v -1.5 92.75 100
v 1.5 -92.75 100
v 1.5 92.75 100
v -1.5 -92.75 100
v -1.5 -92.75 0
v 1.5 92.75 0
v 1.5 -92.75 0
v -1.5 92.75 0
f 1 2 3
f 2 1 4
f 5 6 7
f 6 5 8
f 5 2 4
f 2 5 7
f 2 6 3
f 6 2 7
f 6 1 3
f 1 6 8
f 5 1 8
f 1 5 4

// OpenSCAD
// file: Inlet.scad
$fn = 100;
tiny = 0.01;


/******************************************************
 * dx,dy: Maße, wie bei 'Boden' angegeben.
 *****************************************************/
module inlet_top_down(dx,dy) {
  h1 = 3;  
  dx1 = 5.9;
  dx2 = 4.0; // vier mal Fase an Ecken

  difference() {
     translate([0,0,h1/2]) cube([dx-2*dx1,dy-2*dx1,h1], true); 
     translate([+dx/2-dx1,+dy/2-dx1,h1/2-tiny]) rotate([0,0,45]) cube([dx2,dx2,h1+3*tiny], true);
     translate([+dx/2-dx1,-dy/2+dx1,h1/2-tiny]) rotate([0,0,45]) cube([dx2,dx2,h1+3*tiny], true);
     translate([-dx/2+dx1,+dy/2-dx1,h1/2-tiny]) rotate([0,0,45]) cube([dx2,dx2,h1+3*tiny], true);
     translate([-dx/2+dx1,-dy/2+dx1,h1/2-tiny]) rotate([0,0,45]) cube([dx2,dx2,h1+3*tiny], true);
     }
}


/******************************************************
 * dy: Maß, wie bei 'Boden' angegeben.
 * h:  Maß, wie bei 'Kante' angegeben.
 *****************************************************/
module inlet_front_back(h,dy) {
  h1 = 3;
  dy1 = 12+12.5;
  translate([0,0,h/2]) cube([h1,dy-dy1,h], true);
}


/******************************************************
 * dx: Maß, wie bei 'Boden' angegeben.
 * h:  Maß, wie bei 'Kante' angegeben.
 *****************************************************/
module inlet_left_right(h,dx) {
  h1 = 3;
  dx1 = 12+12.5;
  translate([0,0,h/2]) cube([dx-dx1,h1,h], true);
}
// main file
$fn = 100;

use <Inlet.scad>


inlet_front_back(100,210);
